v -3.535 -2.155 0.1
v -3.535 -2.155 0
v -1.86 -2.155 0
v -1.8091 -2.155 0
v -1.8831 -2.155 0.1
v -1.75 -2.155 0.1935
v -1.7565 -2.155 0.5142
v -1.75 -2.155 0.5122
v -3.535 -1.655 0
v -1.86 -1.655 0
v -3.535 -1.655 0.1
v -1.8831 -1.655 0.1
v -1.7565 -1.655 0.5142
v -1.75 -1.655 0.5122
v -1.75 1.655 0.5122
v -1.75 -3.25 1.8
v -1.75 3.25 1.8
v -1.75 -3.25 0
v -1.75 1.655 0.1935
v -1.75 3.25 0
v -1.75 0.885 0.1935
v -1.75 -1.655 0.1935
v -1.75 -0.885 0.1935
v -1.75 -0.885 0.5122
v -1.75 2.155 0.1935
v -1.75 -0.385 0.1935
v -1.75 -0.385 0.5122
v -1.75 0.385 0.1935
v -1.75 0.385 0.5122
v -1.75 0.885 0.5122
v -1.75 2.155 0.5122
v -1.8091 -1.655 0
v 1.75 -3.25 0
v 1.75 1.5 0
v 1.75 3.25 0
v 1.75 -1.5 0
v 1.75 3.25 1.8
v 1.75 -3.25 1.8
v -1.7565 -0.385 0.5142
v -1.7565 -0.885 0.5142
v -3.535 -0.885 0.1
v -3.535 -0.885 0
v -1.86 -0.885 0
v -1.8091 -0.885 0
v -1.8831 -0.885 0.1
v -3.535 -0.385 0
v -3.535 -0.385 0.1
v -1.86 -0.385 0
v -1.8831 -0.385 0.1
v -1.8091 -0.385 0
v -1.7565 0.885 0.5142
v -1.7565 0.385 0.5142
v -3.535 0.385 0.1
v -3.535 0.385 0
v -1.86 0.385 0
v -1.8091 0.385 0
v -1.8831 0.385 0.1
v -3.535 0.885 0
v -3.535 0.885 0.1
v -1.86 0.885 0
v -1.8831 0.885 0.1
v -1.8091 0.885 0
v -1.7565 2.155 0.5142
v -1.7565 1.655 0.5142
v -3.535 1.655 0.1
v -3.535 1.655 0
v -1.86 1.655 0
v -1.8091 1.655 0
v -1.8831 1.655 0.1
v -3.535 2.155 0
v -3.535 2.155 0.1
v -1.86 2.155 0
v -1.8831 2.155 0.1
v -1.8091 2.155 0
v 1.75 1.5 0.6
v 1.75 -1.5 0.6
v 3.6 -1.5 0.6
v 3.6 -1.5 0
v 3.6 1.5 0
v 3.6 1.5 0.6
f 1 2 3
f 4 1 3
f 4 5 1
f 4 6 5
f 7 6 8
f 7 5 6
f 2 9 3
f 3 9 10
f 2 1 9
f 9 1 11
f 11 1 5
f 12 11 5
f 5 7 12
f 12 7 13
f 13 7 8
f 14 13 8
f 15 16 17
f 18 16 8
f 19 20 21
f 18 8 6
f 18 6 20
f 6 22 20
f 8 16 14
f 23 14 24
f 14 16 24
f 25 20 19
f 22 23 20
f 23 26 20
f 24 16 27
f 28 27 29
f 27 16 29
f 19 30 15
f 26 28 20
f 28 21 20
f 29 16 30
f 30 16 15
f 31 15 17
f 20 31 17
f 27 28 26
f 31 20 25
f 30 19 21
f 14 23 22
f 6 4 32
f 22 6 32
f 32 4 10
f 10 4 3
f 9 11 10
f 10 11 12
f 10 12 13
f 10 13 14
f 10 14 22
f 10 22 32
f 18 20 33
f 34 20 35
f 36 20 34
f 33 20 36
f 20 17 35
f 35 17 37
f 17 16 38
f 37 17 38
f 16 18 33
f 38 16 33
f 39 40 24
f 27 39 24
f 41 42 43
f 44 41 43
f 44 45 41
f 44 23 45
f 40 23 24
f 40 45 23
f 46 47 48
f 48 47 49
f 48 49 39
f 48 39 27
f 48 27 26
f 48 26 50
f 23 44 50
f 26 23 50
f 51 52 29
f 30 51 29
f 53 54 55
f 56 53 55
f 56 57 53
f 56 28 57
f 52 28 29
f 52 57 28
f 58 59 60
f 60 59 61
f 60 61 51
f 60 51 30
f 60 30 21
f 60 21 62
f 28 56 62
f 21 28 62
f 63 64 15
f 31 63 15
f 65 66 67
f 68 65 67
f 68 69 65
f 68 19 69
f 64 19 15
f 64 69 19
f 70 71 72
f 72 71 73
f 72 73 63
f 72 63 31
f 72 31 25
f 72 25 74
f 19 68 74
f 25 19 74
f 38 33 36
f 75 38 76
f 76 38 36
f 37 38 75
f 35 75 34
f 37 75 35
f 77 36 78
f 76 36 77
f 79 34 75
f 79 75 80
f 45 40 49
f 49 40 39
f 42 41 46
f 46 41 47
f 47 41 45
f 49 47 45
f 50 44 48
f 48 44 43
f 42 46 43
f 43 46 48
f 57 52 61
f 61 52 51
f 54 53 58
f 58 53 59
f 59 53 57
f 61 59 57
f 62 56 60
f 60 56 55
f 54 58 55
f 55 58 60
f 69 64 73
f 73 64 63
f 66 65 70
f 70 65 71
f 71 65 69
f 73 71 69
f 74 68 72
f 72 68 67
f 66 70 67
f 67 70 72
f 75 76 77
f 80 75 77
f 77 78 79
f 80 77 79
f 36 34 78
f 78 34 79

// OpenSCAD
//Body
translate(v=[0,0,1.80/2]) cube(size=[3.50,6.50,1.80],center=true);

//Major Pin
translate(v=[1.85/2+3.5/2,0,.3]) cube(size=[1.85,3.0,.6],center=true);

module pin() {
	translate(v = [1.85/2+.01,0,.1/2]) cube(size=[1.85-.15,.5,.1], center=true);
	difference() {
	translate(v=[.15/2-.04,0,.5/2]) rotate(a = 73, v= [0,1,0]) cube(size=[.522,.5,.1], center=true);
	
	translate(v=[0,0,-10]) cube(size = 20, center = true);
	}
}

module side_of_pins() {
	translate(v=[3.5/2,-(1.27*4)/2 + 1.27/2,0]){
	for(z=[0:3]) {
		translate(v=[0,z*1.27,0]) pin();
	}
}
}

rotate(a=180,v=[0,0,1])side_of_pins();
